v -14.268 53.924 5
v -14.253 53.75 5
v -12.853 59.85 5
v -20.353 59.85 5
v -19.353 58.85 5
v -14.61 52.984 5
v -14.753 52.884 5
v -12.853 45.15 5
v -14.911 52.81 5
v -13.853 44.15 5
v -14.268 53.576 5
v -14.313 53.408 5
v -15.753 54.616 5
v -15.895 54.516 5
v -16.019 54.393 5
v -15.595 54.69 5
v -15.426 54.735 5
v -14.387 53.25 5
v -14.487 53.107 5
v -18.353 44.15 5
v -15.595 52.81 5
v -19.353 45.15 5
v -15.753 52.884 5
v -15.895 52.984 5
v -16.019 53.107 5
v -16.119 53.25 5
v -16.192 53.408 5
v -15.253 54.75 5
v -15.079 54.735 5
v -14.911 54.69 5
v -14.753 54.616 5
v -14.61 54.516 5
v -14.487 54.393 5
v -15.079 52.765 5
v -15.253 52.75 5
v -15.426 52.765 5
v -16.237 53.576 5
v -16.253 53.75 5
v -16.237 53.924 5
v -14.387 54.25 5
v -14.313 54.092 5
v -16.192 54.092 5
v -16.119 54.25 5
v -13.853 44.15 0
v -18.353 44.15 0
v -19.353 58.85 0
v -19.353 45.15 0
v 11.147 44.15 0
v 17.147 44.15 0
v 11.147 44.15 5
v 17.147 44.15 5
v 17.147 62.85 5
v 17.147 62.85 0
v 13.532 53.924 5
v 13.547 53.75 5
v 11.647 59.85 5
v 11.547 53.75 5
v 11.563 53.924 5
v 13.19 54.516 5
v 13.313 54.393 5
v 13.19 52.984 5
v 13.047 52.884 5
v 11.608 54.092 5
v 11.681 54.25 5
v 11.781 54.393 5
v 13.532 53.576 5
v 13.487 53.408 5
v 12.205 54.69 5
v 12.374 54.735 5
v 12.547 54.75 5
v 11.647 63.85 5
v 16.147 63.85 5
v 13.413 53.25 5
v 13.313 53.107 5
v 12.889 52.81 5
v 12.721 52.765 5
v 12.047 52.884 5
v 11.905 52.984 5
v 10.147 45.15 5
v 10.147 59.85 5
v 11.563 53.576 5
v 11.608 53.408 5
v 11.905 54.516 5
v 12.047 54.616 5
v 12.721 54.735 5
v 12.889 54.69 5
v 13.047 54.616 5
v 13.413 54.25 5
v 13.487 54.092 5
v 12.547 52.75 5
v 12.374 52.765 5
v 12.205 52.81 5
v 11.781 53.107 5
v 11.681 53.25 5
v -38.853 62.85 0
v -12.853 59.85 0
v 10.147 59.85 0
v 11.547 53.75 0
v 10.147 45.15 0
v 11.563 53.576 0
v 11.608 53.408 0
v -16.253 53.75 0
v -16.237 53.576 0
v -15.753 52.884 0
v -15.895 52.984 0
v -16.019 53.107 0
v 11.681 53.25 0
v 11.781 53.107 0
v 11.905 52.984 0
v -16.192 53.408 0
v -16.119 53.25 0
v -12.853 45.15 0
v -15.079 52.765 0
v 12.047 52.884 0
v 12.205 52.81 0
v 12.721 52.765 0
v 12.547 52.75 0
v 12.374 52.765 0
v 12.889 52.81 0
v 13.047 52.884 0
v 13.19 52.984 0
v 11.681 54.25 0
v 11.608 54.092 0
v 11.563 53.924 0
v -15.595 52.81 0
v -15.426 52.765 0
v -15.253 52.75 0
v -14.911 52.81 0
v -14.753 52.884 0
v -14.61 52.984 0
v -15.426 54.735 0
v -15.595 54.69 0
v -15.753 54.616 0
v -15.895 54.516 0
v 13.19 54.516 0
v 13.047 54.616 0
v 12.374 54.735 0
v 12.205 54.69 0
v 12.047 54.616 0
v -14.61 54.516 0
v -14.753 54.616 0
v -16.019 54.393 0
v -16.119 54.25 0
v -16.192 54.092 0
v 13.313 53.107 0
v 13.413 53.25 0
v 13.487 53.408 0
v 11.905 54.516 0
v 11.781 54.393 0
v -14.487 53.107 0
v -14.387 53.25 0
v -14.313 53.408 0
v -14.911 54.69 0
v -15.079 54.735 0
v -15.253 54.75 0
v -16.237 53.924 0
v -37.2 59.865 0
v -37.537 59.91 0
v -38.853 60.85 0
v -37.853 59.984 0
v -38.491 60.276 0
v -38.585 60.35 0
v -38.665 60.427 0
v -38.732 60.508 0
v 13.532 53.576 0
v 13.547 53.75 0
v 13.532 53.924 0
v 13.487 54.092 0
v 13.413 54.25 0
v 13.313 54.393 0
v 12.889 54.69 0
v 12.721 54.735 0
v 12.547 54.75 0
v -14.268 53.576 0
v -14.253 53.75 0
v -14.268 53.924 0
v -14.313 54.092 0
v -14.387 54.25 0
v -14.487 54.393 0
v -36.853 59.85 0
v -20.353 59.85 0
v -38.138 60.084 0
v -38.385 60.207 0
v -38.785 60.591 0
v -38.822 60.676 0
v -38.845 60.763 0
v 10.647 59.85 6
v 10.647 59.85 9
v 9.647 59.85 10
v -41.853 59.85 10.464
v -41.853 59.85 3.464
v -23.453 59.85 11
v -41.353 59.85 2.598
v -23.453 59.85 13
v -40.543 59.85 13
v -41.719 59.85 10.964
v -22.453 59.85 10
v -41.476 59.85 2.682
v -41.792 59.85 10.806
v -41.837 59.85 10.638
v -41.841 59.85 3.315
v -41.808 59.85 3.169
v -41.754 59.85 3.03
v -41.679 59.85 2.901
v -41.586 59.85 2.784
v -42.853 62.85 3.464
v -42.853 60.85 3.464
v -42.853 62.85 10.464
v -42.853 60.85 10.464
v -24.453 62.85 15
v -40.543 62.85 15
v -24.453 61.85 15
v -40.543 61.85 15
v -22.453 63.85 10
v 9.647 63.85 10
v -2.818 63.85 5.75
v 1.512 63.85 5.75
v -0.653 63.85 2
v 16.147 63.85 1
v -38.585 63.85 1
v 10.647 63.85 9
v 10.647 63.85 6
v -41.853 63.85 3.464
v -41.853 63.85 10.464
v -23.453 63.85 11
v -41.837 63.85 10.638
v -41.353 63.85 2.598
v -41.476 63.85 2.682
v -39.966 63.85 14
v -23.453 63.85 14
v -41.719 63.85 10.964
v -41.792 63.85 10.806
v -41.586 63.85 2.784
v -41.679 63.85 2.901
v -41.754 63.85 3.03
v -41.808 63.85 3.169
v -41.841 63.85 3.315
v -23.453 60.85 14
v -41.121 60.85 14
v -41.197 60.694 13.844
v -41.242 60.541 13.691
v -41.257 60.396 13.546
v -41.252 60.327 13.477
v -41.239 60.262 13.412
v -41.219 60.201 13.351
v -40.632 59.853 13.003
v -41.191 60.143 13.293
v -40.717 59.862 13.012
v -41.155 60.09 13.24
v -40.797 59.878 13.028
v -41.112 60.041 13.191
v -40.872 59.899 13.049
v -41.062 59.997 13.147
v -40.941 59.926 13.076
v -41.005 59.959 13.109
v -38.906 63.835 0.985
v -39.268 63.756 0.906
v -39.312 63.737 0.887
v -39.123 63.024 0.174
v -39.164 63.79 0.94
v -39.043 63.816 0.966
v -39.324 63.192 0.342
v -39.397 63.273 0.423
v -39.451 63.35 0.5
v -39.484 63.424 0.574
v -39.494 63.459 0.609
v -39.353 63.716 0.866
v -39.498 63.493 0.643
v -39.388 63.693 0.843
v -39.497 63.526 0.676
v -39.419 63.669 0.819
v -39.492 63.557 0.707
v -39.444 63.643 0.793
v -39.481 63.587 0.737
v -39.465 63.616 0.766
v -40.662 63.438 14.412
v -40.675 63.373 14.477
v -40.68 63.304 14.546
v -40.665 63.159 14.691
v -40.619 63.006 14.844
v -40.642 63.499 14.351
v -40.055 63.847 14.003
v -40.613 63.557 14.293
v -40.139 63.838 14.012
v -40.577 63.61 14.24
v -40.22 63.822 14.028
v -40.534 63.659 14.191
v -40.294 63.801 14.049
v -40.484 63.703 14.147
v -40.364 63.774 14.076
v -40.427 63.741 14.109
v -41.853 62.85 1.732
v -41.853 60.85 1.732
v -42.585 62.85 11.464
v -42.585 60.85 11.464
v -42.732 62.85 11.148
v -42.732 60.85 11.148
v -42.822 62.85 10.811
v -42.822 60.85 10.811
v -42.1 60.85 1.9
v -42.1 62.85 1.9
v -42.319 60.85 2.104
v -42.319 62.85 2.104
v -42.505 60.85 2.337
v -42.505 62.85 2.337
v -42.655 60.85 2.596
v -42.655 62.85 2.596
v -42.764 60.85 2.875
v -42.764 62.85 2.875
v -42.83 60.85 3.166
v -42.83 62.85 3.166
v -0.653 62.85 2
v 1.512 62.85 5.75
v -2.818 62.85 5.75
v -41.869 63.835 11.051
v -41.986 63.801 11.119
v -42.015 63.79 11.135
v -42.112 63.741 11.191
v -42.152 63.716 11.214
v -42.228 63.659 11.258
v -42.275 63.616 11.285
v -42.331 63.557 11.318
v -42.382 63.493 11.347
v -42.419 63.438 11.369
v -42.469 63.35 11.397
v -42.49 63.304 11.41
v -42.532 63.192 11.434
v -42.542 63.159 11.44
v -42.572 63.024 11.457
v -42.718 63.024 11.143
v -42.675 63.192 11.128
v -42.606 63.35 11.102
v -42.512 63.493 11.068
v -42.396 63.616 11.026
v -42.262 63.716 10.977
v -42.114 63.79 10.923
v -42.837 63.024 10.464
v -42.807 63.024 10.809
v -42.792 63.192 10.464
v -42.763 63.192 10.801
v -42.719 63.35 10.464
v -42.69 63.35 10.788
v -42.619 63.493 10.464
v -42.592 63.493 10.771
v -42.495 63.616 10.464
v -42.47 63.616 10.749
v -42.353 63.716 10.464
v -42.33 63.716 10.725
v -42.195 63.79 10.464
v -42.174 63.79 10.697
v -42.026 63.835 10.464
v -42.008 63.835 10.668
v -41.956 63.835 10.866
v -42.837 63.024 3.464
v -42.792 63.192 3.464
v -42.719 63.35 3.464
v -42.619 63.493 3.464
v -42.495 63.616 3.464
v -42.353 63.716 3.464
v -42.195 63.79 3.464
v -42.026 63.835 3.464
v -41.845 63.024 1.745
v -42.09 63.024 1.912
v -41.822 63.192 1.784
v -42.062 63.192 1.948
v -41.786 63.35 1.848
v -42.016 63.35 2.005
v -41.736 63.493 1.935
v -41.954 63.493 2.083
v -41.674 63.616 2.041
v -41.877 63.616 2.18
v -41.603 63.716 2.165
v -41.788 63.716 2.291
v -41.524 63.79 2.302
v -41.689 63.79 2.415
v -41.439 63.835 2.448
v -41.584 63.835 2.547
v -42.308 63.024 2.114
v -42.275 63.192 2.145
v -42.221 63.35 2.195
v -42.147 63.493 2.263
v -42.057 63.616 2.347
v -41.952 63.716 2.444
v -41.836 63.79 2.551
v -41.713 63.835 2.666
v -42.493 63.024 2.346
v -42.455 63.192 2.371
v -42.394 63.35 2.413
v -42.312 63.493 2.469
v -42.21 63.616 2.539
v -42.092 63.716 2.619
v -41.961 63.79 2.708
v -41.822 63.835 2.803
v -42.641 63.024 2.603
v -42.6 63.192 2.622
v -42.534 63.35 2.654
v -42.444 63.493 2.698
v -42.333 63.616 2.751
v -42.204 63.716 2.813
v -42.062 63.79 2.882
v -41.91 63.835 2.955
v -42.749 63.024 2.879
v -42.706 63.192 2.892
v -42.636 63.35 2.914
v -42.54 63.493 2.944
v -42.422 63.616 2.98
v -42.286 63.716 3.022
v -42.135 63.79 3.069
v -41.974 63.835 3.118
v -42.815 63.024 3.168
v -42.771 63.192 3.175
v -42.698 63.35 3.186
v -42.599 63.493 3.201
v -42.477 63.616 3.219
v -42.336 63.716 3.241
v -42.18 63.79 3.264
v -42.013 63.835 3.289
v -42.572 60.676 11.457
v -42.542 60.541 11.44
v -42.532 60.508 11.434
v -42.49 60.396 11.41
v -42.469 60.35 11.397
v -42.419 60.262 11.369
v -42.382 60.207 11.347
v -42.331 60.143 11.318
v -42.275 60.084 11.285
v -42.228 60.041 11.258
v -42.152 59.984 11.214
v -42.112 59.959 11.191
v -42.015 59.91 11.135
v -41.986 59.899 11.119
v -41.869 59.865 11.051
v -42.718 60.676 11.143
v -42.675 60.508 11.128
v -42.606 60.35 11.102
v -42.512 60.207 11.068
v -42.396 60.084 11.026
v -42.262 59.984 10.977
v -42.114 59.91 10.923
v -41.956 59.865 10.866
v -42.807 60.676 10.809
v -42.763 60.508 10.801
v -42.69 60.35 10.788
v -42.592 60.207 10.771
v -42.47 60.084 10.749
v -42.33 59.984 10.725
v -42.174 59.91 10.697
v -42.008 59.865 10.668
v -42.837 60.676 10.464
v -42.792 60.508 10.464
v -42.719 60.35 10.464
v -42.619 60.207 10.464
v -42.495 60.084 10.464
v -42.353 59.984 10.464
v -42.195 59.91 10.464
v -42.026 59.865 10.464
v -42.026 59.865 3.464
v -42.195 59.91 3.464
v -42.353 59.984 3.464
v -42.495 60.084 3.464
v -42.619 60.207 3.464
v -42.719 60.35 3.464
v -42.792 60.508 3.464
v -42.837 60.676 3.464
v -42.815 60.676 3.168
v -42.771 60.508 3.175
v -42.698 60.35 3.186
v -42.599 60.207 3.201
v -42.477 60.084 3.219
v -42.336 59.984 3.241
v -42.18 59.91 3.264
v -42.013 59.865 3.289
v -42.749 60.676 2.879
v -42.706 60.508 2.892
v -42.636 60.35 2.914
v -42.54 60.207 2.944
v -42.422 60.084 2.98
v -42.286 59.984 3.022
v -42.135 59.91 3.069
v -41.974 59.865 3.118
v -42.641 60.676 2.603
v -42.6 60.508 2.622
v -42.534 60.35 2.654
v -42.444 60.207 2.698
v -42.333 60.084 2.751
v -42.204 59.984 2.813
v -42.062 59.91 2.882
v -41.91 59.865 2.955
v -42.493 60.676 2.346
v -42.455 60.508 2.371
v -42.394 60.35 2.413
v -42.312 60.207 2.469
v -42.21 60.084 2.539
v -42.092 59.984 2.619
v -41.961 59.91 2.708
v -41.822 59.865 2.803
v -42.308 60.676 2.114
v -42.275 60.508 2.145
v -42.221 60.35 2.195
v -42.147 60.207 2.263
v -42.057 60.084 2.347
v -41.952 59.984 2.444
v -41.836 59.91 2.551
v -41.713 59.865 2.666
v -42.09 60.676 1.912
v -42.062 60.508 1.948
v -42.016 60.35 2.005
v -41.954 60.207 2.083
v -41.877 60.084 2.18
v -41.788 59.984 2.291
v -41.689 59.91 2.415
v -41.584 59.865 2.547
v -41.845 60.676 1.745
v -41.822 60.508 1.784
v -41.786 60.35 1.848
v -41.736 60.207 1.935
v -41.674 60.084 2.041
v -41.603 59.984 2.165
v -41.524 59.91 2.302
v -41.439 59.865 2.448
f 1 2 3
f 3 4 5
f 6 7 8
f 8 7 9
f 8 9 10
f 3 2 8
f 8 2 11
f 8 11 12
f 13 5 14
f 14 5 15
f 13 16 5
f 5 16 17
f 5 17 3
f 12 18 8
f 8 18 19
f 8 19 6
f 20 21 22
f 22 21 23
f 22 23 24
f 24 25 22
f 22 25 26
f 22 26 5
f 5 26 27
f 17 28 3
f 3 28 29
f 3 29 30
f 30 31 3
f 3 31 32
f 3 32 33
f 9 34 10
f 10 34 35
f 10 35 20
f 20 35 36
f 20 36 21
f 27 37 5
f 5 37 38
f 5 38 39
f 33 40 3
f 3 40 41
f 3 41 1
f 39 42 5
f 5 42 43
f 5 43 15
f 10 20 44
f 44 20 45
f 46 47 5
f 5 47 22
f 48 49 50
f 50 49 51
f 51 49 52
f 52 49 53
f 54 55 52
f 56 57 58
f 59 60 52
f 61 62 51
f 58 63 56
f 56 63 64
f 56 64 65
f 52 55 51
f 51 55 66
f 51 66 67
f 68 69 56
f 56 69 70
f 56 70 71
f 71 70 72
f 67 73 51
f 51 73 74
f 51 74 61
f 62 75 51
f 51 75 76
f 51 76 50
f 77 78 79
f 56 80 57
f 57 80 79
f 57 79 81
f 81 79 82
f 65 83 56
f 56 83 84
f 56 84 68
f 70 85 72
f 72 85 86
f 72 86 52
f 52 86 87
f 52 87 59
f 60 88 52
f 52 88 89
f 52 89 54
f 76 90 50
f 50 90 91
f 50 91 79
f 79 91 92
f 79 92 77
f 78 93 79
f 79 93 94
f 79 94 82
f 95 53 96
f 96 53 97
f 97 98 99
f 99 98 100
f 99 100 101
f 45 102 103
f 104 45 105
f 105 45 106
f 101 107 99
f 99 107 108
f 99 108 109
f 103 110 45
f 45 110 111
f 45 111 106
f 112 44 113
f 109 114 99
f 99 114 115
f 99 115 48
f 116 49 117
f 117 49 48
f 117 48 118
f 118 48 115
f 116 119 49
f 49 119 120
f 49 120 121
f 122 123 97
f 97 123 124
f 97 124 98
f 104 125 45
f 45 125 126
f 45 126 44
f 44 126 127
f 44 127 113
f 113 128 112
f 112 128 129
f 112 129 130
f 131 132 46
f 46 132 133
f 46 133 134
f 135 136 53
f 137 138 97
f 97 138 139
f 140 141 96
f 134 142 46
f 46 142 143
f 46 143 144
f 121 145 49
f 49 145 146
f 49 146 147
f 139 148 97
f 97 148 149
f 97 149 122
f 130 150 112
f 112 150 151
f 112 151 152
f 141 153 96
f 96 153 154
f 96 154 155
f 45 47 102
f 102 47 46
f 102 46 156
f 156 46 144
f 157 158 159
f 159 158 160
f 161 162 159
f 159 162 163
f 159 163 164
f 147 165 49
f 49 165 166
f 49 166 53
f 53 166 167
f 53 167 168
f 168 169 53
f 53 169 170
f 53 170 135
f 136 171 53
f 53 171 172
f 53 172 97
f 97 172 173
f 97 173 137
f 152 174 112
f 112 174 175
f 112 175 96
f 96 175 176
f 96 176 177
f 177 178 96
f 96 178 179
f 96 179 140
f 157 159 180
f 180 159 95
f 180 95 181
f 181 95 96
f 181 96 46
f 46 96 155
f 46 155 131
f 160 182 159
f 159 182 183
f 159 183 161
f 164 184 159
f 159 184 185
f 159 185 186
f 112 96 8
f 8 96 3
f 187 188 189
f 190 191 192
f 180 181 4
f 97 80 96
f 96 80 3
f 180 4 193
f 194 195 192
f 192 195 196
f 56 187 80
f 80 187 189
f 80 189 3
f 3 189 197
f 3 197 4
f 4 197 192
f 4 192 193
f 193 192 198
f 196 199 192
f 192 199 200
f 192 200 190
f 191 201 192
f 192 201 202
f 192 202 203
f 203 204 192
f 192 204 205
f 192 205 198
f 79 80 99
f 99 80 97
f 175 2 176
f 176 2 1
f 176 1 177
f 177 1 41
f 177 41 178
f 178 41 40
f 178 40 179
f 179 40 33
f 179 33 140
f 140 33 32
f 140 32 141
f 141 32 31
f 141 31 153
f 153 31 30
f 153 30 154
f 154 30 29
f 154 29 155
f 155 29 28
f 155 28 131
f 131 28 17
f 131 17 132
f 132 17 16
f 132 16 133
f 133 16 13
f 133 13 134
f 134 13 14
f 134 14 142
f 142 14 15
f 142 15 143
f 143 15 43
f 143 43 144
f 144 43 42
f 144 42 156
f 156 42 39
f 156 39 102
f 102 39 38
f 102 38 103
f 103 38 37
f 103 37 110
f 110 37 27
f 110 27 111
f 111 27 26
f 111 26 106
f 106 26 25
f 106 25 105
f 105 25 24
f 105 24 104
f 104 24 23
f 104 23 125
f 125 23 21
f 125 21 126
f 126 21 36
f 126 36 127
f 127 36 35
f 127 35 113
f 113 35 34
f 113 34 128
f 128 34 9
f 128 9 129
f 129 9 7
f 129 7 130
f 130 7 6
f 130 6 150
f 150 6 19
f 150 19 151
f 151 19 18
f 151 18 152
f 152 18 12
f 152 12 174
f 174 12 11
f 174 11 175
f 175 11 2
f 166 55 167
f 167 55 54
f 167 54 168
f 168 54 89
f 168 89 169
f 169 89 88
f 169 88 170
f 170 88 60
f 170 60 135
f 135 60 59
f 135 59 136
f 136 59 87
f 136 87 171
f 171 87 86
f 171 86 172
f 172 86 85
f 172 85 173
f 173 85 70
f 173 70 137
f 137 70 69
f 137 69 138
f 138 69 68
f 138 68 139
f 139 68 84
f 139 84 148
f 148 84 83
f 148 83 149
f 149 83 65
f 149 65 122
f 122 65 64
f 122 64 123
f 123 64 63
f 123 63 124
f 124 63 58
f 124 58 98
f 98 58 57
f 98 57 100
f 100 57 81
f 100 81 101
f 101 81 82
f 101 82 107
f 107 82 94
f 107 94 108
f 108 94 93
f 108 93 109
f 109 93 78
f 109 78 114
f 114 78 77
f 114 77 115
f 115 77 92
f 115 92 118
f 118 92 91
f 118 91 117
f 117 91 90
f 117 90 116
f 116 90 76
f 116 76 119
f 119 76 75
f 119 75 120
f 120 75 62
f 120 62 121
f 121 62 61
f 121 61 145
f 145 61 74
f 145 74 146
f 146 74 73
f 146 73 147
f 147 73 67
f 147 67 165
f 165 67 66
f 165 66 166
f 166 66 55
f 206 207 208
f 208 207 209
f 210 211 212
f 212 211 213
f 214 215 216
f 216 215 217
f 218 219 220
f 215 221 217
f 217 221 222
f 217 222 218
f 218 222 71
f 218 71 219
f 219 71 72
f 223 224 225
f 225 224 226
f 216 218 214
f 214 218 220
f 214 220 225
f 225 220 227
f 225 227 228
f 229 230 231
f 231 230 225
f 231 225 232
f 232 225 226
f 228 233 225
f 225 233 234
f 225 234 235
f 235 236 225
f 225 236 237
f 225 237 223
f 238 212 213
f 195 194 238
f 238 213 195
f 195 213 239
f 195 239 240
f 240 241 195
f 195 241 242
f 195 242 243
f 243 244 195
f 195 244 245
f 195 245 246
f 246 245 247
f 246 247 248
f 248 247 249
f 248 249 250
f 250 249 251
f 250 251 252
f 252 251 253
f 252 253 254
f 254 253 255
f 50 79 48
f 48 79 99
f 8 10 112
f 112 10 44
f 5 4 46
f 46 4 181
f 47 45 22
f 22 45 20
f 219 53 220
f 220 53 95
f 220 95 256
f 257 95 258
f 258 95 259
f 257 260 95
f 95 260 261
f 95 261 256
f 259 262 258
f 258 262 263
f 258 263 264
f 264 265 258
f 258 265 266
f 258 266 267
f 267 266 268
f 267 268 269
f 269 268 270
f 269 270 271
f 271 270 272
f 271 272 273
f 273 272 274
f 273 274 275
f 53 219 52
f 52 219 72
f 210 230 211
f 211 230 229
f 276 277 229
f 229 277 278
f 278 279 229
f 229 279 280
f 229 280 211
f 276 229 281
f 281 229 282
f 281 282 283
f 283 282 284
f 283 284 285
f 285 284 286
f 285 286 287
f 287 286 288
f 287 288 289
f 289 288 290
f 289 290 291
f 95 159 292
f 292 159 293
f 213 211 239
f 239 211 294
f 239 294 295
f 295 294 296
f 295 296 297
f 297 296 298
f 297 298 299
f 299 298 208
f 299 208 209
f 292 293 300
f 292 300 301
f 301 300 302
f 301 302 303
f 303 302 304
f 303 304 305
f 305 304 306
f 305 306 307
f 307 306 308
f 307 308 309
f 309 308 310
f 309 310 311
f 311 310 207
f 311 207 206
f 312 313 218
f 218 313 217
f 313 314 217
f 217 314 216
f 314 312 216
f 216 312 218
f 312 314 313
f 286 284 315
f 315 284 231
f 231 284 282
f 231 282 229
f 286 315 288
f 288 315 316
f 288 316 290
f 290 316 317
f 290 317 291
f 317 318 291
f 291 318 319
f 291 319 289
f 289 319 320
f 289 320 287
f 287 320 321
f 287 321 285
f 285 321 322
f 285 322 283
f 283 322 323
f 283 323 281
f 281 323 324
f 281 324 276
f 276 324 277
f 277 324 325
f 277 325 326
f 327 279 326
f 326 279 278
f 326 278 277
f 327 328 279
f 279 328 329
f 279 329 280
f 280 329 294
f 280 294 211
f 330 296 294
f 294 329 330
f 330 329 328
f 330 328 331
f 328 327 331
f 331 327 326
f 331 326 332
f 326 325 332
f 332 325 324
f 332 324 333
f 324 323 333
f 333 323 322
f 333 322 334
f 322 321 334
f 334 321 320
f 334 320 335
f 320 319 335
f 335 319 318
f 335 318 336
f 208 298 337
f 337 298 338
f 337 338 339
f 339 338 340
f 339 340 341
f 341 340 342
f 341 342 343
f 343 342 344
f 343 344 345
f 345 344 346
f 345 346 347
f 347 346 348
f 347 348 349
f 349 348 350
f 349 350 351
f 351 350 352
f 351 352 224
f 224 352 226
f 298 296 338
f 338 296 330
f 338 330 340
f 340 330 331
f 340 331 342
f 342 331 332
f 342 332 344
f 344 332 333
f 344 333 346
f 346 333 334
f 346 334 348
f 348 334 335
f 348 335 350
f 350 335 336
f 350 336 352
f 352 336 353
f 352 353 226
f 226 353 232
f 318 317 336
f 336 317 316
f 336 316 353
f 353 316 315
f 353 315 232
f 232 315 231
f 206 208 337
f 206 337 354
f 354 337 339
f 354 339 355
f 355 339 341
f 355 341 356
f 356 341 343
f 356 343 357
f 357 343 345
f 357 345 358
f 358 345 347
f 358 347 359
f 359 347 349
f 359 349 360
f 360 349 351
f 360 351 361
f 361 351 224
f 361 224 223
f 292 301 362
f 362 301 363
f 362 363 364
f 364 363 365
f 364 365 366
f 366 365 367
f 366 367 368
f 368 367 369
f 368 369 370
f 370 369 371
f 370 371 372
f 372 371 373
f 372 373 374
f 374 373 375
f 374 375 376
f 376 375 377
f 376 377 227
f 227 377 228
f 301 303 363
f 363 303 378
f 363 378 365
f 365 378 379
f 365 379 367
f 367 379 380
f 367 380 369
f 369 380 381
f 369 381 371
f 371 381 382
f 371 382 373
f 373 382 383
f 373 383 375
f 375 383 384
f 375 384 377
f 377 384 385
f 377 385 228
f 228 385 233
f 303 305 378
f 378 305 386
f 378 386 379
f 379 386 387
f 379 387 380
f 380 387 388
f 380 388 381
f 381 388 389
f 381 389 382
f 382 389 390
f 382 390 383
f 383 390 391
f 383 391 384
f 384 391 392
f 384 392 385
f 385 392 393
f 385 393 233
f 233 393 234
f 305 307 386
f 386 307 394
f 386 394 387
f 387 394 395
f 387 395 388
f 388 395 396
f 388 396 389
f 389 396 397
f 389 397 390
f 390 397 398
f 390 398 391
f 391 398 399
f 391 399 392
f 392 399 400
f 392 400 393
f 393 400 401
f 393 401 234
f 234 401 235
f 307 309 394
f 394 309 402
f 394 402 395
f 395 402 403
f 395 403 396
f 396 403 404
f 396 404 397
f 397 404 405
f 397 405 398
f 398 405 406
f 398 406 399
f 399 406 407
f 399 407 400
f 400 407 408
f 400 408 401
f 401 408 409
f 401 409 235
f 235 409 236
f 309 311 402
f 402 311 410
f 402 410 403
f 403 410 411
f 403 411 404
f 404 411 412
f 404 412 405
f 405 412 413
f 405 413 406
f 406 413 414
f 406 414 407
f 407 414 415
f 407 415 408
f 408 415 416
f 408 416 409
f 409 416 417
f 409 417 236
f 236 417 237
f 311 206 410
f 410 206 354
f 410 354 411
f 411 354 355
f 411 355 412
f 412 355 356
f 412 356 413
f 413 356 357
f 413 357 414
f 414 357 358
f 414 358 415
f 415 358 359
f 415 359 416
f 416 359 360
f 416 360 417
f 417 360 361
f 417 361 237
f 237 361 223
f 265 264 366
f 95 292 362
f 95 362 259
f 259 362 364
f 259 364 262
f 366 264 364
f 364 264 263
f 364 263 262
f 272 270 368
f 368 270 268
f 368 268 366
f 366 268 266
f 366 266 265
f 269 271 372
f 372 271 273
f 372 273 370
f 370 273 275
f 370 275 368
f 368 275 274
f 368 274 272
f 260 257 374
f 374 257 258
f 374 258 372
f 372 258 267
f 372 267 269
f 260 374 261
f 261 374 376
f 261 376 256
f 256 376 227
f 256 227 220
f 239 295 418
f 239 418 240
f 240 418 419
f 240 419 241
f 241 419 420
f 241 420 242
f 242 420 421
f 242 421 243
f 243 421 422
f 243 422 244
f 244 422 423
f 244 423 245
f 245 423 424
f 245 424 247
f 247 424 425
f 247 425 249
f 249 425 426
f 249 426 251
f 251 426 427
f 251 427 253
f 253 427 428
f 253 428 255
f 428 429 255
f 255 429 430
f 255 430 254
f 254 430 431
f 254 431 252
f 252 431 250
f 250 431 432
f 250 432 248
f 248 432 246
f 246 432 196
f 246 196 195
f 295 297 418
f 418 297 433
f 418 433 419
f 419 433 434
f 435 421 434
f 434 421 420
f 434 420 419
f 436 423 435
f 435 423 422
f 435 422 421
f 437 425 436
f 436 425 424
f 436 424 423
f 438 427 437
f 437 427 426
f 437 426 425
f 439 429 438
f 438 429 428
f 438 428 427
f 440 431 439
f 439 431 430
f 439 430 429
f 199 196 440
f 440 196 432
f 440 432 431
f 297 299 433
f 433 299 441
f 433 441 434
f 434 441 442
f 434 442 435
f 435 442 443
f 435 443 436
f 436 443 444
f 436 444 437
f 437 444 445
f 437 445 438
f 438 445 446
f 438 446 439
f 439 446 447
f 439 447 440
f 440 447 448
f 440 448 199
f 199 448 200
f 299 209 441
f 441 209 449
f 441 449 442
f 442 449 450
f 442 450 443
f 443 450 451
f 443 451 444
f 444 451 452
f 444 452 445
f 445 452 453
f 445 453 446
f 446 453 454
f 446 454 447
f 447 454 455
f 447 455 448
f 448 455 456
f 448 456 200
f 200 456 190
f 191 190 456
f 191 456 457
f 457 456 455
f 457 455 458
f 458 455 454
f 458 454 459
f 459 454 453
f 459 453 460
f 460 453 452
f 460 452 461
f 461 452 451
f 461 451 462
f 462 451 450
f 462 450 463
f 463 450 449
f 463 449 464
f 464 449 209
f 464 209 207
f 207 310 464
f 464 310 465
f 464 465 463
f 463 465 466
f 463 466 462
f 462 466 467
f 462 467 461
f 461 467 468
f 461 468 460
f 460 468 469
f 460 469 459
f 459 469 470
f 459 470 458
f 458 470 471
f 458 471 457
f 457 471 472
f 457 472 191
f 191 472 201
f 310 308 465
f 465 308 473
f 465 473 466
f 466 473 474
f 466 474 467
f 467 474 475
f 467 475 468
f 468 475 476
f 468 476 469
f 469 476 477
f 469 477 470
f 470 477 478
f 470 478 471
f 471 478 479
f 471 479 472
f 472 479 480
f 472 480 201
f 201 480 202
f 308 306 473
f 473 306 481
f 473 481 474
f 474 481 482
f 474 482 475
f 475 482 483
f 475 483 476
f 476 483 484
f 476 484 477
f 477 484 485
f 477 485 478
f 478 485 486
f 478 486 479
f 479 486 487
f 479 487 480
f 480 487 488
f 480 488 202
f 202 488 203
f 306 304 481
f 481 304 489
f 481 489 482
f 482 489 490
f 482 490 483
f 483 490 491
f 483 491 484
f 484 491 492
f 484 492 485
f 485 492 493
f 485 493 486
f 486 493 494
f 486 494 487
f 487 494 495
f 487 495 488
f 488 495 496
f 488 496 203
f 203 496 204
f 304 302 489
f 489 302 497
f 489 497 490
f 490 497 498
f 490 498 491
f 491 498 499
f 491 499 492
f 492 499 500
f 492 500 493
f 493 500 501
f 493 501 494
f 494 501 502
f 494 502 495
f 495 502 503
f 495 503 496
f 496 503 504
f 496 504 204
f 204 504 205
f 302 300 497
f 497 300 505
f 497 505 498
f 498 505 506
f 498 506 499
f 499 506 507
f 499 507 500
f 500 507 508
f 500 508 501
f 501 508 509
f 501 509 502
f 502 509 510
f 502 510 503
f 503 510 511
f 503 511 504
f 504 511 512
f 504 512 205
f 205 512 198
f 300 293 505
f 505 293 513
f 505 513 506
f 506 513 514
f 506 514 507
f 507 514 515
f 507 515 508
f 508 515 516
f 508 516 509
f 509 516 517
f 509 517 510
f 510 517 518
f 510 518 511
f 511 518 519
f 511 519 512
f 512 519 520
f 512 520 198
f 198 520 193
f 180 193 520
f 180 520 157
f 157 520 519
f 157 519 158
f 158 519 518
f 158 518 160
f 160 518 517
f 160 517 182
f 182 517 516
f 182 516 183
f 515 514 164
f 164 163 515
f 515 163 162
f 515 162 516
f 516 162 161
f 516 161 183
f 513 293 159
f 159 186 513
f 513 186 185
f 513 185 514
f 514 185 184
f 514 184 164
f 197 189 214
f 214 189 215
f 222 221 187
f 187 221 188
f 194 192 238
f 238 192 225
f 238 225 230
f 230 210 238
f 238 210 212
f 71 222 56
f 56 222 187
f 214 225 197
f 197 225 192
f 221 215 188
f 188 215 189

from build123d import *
from OCP.BRepFilletAPI import BRepFilletAPI_MakeChamfer

# Parameters (mm, degrees)
SKETCH1_W           = 36.5
SKETCH1_H           = 19.2
BOSS_EXTRUDE1_DEPTH = 5
SKETCH2_R           = 1
SKETCH2_W           = 23
SKETCH2_H           = 15.7
CUT_EXTRUDE3_DEPTH  = 67.428509309
SKETCH4_W           = 60
SKETCH4_H           = 15
BOSS_EXTRUDE2_DEPTH = 0.5
BOSS_EXTRUDE3_DEPTH = 3.5
CHAMFER1_SIZE       = 2
CHAMFER2_SIZE       = 1
CHAMFER3_SIZE       = 4
CHAMFER3_SIZE2      = 2.309401077
FILLET1_R           = 2
CUT_EXTRUDE4_DEPTH  = 1
FILLET2_R           = 1
CUT_EXTRUDE5_DEPTH  = 10
CHAMFER4_SIZE       = 1


with BuildPart() as part:
    # Sketch1 → Boss-Extrude1 (new body)
    with BuildSketch(Plane.XY):
        with Locations((-1.102631579, 53.75)):
            Rectangle(SKETCH1_W, SKETCH1_H)
    extrude(amount=BOSS_EXTRUDE1_DEPTH)

    # Sketch2 → Cut-Extrude3 (cut, through all)
    with BuildSketch(Plane.XY.offset(5)):
        with Locations((-15.252631579, 53.75)):
            Circle(SKETCH2_R)
        with Locations((12.547368421, 53.75)):
            Circle(SKETCH2_R)
        with Locations((-1.352631579, 52)):
            Rectangle(SKETCH2_W, SKETCH2_H)
    extrude(amount=-CUT_EXTRUDE3_DEPTH, mode=Mode.SUBTRACT)

    # Sketch4 → Boss-Extrude2 (add)
    with BuildSketch(Plane(origin=(0, 63.35, 0), x_dir=(1, 0, 0), z_dir=(0, 1, 0))):
        with Locations((-12.852631579, -7.5)):
            Rectangle(SKETCH4_W, SKETCH4_H)
    extrude(amount=BOSS_EXTRUDE2_DEPTH)

    # Sketch7 → Boss-Extrude3 (add)
    with BuildSketch(Plane.XZ.offset(-63.35)):
        Polygon((-19.352631579, 0), (-42.852631579, 0), (-42.852631579, 15), (-19.052631579, 15), (17.147368421, 15), (17.147368421, 5), (-19.352631579, 5), align=None)
    extrude(amount=BOSS_EXTRUDE3_DEPTH)

    # Chamfer1
    chamfer1_edges = [part.edges().sort_by_distance(p)[0] for p in [
        (-12.852631579, 59.85, 15),
    ]]
    chamfer(chamfer1_edges, length=CHAMFER1_SIZE)

    # Chamfer2
    chamfer2_edges = [part.edges().sort_by_distance(p)[0] for p in [
        (-12.852631579, 44.15, 2.5),
        (10.147368421, 44.15, 2.5),
        (17.147368421, 63.85, 7.5),
        (-12.852631579, 63.85, 0),
        (-12.852631579, 63.85, 15),
        (-19.352631579, 59.85, 2.5),
        (-19.352631579, 44.15, 2.5),
    ]]
    chamfer(chamfer2_edges, length=CHAMFER2_SIZE)

    # Chamfer3: one chamfer whose edges measure the first distance from different faces: ONE call of the kernel's chamfer builder (chamfer() names one face for all edges)
    chamfer3_edges_1 = [part.edges().sort_by_distance(p)[0] for p in [
        (-42.852631579, 61.35, 0),
    ]]
    chamfer3_side_1 = [part.faces().sort_by_distance(p)[0] for p in [
        (-18.724165987, 52, 0),
    ]]
    chamfer3_edges_2 = [part.edges().sort_by_distance(p)[0] for p in [
        (-42.852631579, 62.35, 15),
    ]]
    chamfer3_side_2 = [part.faces().sort_by_distance(p)[0] for p in [
        (-42.852631579, 61.86754386, 7.260233918),
    ]]
    chamfer3 = BRepFilletAPI_MakeChamfer(part.part.solid().wrapped)
    for e in chamfer3_edges_1:
        chamfer3.Add(CHAMFER3_SIZE, CHAMFER3_SIZE2, e.wrapped, chamfer3_side_1[0].wrapped)  # the first distance lies on this face
    for e in chamfer3_edges_2:
        chamfer3.Add(CHAMFER3_SIZE, CHAMFER3_SIZE2, e.wrapped, chamfer3_side_2[0].wrapped)  # the first distance lies on this face
    add(Compound.cast(chamfer3.Shape()), mode=Mode.REPLACE)

    # Fillet1
    fillet1_edges = [part.edges().sort_by_distance(p)[0] for p in [
        (-42.852631579, 61.85, 11),
        (-42.852631579, 61.85, 2.309401077),
    ]]
    fillet(fillet1_edges, radius=FILLET1_R)

    # Sketch8 → Cut-Extrude4 (cut)
    with BuildSketch(Plane(origin=(0, 63.85, 0), x_dir=(1, 0, 0), z_dir=(0, 1, 0))):
        Polygon((-0.652631579, -2), (-2.817695088, -5.75), (1.512431931, -5.75), align=None)
    extrude(amount=-CUT_EXTRUDE4_DEPTH, mode=Mode.SUBTRACT)

    # Fillet2
    fillet2_edges = [part.edges().sort_by_distance(p)[0] for p in [
        (-41.218656983, 63.85, 1.366025404),
        (-42.584682387, 63.85, 2.464101615),
        (-41.852631579, 63.85, 12.732050808),
        (-42.784483232, 63.85, 10.981739705),
        (-40.352631579, 59.85, 0.866025404),
        (-42.584682387, 59.85, 2.464101615),
        (-42.141306714, 59.85, 12.232050808),
        (-42.784483232, 59.85, 10.981739705),
        (-42.852631579, 63.85, 6.964101615),
        (-42.852631579, 59.85, 6.964101615),
    ]]
    fillet(fillet2_edges, radius=FILLET2_R - 0.0001)  # a hair under: the kernel refuses the full size

    # Sketch9 → Cut-Extrude5 (cut)
    with BuildSketch(Plane(origin=(0, 63.85, 0), x_dir=(1, 0, 0), z_dir=(0, 1, 0))):
        Polygon((17.147368421, -5), (10.647368421, -5), (10.647368421, -10), (-23.452631579, -10), (-23.452631579, -15), (9.647368421, -15), (17.147368421, -15), align=None)
    extrude(amount=-CUT_EXTRUDE5_DEPTH, mode=Mode.SUBTRACT)

    # Chamfer4
    chamfer4_edges = [part.edges().sort_by_distance(p)[0] for p in [
        (10.647368421, 61.85, 5),
        (-23.452631579, 61.85, 10),
        (10.647368421, 61.85, 10),
        (-23.452631579, 62.35, 15),
    ]]
    chamfer(chamfer4_edges, length=CHAMFER4_SIZE)


solid = part.part
